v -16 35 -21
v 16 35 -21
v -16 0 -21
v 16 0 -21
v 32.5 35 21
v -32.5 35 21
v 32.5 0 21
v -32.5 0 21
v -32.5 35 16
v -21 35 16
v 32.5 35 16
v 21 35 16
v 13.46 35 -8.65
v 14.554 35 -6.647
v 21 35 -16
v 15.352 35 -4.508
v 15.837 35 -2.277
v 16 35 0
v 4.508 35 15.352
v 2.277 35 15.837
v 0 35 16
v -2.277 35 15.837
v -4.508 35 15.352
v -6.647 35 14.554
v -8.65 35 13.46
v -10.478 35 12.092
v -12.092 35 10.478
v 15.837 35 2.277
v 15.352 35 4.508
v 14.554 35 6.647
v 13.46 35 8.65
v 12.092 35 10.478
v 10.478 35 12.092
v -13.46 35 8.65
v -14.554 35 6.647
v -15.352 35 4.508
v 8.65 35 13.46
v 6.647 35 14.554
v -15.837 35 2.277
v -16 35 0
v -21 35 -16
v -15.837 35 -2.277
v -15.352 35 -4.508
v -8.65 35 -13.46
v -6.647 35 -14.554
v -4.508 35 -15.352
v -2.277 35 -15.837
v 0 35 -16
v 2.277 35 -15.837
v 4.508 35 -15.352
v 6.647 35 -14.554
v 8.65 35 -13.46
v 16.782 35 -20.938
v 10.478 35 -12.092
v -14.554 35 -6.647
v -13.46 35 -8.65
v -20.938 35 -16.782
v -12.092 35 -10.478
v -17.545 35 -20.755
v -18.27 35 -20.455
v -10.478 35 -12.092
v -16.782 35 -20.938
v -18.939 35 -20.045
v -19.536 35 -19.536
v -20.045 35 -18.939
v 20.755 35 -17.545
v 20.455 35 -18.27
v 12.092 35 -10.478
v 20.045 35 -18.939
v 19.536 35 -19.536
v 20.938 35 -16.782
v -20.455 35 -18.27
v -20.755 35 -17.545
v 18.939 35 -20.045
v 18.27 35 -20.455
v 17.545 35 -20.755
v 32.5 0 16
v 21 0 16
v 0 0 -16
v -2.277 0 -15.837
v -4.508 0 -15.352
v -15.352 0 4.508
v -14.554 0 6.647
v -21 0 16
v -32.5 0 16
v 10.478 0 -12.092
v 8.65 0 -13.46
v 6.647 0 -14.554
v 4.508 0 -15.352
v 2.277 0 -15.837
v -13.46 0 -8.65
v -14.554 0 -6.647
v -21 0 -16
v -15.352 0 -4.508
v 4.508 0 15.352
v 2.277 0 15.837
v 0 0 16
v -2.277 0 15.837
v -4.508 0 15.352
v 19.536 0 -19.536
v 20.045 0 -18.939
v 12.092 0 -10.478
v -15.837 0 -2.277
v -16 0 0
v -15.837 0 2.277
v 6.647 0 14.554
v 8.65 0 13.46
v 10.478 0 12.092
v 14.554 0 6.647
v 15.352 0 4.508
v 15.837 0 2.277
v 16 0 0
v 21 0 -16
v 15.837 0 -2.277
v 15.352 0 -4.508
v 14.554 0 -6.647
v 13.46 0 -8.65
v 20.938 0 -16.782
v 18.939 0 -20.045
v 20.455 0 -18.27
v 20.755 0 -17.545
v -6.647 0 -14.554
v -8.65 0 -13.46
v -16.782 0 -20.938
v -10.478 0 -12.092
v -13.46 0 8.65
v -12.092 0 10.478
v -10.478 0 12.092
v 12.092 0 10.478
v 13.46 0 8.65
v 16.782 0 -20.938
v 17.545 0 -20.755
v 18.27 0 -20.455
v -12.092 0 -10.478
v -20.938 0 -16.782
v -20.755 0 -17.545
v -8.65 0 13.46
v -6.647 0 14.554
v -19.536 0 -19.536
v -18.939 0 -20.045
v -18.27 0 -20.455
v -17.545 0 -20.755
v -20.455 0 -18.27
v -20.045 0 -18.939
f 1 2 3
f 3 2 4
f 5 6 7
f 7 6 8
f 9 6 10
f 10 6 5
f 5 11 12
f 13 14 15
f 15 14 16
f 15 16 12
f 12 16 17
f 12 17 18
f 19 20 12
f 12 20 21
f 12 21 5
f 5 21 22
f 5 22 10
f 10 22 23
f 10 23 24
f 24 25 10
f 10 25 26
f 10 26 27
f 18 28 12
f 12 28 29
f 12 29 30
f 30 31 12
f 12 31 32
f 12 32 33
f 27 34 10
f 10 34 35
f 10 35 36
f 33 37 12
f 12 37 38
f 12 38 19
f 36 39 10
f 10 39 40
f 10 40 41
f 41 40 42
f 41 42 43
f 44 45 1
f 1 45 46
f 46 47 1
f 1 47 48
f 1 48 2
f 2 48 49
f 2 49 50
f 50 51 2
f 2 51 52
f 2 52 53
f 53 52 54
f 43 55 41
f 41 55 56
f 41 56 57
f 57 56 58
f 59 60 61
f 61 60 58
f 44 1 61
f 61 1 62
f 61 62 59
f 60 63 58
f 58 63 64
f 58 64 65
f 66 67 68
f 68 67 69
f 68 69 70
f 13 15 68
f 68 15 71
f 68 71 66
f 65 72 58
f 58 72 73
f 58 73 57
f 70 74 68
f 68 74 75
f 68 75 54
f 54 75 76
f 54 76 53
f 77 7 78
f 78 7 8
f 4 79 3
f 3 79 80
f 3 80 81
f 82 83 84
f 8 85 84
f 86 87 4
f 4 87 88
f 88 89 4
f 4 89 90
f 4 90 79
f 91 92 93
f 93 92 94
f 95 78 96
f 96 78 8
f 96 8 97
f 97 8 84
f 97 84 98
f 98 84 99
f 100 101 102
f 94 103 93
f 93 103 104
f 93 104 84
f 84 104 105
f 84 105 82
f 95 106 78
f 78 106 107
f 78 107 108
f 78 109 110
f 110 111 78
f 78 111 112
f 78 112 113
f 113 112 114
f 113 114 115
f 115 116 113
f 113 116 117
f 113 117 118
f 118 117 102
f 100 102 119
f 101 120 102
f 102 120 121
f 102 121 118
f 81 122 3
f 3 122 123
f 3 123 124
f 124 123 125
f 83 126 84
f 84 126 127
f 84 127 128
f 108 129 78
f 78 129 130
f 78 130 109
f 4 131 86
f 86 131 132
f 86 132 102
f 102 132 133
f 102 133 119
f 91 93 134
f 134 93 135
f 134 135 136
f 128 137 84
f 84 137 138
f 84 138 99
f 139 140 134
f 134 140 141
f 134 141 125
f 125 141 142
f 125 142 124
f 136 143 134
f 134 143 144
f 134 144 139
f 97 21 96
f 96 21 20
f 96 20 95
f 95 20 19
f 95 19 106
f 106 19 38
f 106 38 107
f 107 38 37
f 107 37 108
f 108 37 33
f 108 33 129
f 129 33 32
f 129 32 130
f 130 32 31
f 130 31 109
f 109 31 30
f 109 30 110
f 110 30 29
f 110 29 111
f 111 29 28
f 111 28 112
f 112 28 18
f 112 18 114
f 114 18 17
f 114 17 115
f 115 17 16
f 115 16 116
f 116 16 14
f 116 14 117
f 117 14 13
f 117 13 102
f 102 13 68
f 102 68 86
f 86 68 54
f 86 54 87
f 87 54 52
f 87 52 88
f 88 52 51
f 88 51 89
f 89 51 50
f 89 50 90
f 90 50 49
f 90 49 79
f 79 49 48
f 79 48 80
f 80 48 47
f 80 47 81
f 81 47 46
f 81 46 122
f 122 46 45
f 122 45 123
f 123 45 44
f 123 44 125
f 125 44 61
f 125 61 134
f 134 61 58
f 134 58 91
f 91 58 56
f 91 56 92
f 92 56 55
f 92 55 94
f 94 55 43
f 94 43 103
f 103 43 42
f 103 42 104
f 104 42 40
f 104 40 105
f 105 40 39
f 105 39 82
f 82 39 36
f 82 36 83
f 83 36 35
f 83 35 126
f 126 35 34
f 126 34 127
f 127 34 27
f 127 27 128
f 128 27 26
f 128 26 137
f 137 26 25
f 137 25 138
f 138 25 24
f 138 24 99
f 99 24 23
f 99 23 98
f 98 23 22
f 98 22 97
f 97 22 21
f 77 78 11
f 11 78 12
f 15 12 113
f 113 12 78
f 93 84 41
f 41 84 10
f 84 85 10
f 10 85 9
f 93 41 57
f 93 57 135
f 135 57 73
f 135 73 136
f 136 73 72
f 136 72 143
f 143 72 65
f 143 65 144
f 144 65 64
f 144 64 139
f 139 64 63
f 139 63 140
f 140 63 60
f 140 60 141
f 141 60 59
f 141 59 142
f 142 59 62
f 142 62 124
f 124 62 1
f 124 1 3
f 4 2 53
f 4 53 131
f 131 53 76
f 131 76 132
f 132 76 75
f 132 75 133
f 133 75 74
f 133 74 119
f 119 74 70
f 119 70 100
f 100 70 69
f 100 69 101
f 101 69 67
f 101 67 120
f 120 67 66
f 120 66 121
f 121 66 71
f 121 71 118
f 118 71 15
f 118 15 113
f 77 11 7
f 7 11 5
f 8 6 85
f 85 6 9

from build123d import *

# Parameters (mm, degrees)
SKETCH3_W           = 55
SKETCH3_H           = 42
BOSS_EXTRUDE1_DEPTH = 35
SKETCH4_R           = 16
CUT_EXTRUDE1_DEPTH  = 35
SKETCH5_W           = 6.5
SKETCH5_H           = 37
CUT_EXTRUDE2_DEPTH  = 35
FILLET1_R           = 5
SKETCH6_W           = 5
SKETCH6_H           = 35
BOSS_EXTRUDE2_DEPTH = 5
SKETCH7_W           = 5
SKETCH7_H           = 35
BOSS_EXTRUDE3_DEPTH = 5


with BuildPart() as part:
    # Sketch3 → Boss-Extrude1 (new body)
    with BuildSketch(Plane(origin=(0, 0, 0), x_dir=(1, 0, 0), z_dir=(0, 1, 0))):
        Rectangle(SKETCH3_W, SKETCH3_H)
    extrude(amount=BOSS_EXTRUDE1_DEPTH)

    # Sketch4 → Cut-Extrude1 (cut)
    with BuildSketch(Plane(origin=(0, 35, 0), x_dir=(1, 0, 0), z_dir=(0, 1, 0))):
        with Locations(Location((0, 0, 0), (0, 0, 270))):
            Circle(SKETCH4_R)
    extrude(amount=-CUT_EXTRUDE1_DEPTH, mode=Mode.SUBTRACT)

    # Sketch5 → Cut-Extrude2 (cut)
    with BuildSketch(Plane(origin=(0, 35, 0), x_dir=(1, 0, 0), z_dir=(0, 1, 0))):
        with Locations((-24.25, 2.5)):
            Rectangle(SKETCH5_W, SKETCH5_H)
        with Locations((24.25, 2.5)):
            Rectangle(SKETCH5_W, SKETCH5_H)
    extrude(amount=-CUT_EXTRUDE2_DEPTH, mode=Mode.SUBTRACT)

    # Fillet1
    fillet1_edges = [part.edges().sort_by_distance(p)[0] for p in [
        (-21, 17.5, -21),
        (21, 17.5, -21),
    ]]
    fillet(fillet1_edges, radius=FILLET1_R)

    # Sketch6 → Boss-Extrude2 (add)
    with BuildSketch(Plane(origin=(27.5, 0, 0), x_dir=(0, 0, -1), z_dir=(1, 0, 0))):
        with Locations((-18.5, 17.5)):
            Rectangle(SKETCH6_W, SKETCH6_H)
    extrude(amount=BOSS_EXTRUDE2_DEPTH)

    # Sketch7 → Boss-Extrude3 (add)
    with BuildSketch(Plane.ZY.offset(27.5)):
        with Locations((18.5, 17.5)):
            Rectangle(SKETCH7_W, SKETCH7_H)
    extrude(amount=BOSS_EXTRUDE3_DEPTH)


solid = part.part
